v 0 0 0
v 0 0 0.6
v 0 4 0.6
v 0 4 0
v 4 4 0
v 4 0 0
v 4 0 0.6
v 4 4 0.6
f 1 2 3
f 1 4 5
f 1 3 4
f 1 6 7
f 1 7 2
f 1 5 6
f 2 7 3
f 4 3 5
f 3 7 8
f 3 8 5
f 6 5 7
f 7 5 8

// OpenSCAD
/* Warning, this is a very basic generator with a lot of approximation 
input data : [UQFN, PWX, 4x4x0.6mm, 28, , B, C04-00333B]
generated by com.zoubworld.electronics.cad.model3d.Basic
Date : Sun Feb 15 10:50:48 CET 2026
*/

//body
color("black")
translate([0,0,0])
cube([4.0,4.0,0.6], center=false);
